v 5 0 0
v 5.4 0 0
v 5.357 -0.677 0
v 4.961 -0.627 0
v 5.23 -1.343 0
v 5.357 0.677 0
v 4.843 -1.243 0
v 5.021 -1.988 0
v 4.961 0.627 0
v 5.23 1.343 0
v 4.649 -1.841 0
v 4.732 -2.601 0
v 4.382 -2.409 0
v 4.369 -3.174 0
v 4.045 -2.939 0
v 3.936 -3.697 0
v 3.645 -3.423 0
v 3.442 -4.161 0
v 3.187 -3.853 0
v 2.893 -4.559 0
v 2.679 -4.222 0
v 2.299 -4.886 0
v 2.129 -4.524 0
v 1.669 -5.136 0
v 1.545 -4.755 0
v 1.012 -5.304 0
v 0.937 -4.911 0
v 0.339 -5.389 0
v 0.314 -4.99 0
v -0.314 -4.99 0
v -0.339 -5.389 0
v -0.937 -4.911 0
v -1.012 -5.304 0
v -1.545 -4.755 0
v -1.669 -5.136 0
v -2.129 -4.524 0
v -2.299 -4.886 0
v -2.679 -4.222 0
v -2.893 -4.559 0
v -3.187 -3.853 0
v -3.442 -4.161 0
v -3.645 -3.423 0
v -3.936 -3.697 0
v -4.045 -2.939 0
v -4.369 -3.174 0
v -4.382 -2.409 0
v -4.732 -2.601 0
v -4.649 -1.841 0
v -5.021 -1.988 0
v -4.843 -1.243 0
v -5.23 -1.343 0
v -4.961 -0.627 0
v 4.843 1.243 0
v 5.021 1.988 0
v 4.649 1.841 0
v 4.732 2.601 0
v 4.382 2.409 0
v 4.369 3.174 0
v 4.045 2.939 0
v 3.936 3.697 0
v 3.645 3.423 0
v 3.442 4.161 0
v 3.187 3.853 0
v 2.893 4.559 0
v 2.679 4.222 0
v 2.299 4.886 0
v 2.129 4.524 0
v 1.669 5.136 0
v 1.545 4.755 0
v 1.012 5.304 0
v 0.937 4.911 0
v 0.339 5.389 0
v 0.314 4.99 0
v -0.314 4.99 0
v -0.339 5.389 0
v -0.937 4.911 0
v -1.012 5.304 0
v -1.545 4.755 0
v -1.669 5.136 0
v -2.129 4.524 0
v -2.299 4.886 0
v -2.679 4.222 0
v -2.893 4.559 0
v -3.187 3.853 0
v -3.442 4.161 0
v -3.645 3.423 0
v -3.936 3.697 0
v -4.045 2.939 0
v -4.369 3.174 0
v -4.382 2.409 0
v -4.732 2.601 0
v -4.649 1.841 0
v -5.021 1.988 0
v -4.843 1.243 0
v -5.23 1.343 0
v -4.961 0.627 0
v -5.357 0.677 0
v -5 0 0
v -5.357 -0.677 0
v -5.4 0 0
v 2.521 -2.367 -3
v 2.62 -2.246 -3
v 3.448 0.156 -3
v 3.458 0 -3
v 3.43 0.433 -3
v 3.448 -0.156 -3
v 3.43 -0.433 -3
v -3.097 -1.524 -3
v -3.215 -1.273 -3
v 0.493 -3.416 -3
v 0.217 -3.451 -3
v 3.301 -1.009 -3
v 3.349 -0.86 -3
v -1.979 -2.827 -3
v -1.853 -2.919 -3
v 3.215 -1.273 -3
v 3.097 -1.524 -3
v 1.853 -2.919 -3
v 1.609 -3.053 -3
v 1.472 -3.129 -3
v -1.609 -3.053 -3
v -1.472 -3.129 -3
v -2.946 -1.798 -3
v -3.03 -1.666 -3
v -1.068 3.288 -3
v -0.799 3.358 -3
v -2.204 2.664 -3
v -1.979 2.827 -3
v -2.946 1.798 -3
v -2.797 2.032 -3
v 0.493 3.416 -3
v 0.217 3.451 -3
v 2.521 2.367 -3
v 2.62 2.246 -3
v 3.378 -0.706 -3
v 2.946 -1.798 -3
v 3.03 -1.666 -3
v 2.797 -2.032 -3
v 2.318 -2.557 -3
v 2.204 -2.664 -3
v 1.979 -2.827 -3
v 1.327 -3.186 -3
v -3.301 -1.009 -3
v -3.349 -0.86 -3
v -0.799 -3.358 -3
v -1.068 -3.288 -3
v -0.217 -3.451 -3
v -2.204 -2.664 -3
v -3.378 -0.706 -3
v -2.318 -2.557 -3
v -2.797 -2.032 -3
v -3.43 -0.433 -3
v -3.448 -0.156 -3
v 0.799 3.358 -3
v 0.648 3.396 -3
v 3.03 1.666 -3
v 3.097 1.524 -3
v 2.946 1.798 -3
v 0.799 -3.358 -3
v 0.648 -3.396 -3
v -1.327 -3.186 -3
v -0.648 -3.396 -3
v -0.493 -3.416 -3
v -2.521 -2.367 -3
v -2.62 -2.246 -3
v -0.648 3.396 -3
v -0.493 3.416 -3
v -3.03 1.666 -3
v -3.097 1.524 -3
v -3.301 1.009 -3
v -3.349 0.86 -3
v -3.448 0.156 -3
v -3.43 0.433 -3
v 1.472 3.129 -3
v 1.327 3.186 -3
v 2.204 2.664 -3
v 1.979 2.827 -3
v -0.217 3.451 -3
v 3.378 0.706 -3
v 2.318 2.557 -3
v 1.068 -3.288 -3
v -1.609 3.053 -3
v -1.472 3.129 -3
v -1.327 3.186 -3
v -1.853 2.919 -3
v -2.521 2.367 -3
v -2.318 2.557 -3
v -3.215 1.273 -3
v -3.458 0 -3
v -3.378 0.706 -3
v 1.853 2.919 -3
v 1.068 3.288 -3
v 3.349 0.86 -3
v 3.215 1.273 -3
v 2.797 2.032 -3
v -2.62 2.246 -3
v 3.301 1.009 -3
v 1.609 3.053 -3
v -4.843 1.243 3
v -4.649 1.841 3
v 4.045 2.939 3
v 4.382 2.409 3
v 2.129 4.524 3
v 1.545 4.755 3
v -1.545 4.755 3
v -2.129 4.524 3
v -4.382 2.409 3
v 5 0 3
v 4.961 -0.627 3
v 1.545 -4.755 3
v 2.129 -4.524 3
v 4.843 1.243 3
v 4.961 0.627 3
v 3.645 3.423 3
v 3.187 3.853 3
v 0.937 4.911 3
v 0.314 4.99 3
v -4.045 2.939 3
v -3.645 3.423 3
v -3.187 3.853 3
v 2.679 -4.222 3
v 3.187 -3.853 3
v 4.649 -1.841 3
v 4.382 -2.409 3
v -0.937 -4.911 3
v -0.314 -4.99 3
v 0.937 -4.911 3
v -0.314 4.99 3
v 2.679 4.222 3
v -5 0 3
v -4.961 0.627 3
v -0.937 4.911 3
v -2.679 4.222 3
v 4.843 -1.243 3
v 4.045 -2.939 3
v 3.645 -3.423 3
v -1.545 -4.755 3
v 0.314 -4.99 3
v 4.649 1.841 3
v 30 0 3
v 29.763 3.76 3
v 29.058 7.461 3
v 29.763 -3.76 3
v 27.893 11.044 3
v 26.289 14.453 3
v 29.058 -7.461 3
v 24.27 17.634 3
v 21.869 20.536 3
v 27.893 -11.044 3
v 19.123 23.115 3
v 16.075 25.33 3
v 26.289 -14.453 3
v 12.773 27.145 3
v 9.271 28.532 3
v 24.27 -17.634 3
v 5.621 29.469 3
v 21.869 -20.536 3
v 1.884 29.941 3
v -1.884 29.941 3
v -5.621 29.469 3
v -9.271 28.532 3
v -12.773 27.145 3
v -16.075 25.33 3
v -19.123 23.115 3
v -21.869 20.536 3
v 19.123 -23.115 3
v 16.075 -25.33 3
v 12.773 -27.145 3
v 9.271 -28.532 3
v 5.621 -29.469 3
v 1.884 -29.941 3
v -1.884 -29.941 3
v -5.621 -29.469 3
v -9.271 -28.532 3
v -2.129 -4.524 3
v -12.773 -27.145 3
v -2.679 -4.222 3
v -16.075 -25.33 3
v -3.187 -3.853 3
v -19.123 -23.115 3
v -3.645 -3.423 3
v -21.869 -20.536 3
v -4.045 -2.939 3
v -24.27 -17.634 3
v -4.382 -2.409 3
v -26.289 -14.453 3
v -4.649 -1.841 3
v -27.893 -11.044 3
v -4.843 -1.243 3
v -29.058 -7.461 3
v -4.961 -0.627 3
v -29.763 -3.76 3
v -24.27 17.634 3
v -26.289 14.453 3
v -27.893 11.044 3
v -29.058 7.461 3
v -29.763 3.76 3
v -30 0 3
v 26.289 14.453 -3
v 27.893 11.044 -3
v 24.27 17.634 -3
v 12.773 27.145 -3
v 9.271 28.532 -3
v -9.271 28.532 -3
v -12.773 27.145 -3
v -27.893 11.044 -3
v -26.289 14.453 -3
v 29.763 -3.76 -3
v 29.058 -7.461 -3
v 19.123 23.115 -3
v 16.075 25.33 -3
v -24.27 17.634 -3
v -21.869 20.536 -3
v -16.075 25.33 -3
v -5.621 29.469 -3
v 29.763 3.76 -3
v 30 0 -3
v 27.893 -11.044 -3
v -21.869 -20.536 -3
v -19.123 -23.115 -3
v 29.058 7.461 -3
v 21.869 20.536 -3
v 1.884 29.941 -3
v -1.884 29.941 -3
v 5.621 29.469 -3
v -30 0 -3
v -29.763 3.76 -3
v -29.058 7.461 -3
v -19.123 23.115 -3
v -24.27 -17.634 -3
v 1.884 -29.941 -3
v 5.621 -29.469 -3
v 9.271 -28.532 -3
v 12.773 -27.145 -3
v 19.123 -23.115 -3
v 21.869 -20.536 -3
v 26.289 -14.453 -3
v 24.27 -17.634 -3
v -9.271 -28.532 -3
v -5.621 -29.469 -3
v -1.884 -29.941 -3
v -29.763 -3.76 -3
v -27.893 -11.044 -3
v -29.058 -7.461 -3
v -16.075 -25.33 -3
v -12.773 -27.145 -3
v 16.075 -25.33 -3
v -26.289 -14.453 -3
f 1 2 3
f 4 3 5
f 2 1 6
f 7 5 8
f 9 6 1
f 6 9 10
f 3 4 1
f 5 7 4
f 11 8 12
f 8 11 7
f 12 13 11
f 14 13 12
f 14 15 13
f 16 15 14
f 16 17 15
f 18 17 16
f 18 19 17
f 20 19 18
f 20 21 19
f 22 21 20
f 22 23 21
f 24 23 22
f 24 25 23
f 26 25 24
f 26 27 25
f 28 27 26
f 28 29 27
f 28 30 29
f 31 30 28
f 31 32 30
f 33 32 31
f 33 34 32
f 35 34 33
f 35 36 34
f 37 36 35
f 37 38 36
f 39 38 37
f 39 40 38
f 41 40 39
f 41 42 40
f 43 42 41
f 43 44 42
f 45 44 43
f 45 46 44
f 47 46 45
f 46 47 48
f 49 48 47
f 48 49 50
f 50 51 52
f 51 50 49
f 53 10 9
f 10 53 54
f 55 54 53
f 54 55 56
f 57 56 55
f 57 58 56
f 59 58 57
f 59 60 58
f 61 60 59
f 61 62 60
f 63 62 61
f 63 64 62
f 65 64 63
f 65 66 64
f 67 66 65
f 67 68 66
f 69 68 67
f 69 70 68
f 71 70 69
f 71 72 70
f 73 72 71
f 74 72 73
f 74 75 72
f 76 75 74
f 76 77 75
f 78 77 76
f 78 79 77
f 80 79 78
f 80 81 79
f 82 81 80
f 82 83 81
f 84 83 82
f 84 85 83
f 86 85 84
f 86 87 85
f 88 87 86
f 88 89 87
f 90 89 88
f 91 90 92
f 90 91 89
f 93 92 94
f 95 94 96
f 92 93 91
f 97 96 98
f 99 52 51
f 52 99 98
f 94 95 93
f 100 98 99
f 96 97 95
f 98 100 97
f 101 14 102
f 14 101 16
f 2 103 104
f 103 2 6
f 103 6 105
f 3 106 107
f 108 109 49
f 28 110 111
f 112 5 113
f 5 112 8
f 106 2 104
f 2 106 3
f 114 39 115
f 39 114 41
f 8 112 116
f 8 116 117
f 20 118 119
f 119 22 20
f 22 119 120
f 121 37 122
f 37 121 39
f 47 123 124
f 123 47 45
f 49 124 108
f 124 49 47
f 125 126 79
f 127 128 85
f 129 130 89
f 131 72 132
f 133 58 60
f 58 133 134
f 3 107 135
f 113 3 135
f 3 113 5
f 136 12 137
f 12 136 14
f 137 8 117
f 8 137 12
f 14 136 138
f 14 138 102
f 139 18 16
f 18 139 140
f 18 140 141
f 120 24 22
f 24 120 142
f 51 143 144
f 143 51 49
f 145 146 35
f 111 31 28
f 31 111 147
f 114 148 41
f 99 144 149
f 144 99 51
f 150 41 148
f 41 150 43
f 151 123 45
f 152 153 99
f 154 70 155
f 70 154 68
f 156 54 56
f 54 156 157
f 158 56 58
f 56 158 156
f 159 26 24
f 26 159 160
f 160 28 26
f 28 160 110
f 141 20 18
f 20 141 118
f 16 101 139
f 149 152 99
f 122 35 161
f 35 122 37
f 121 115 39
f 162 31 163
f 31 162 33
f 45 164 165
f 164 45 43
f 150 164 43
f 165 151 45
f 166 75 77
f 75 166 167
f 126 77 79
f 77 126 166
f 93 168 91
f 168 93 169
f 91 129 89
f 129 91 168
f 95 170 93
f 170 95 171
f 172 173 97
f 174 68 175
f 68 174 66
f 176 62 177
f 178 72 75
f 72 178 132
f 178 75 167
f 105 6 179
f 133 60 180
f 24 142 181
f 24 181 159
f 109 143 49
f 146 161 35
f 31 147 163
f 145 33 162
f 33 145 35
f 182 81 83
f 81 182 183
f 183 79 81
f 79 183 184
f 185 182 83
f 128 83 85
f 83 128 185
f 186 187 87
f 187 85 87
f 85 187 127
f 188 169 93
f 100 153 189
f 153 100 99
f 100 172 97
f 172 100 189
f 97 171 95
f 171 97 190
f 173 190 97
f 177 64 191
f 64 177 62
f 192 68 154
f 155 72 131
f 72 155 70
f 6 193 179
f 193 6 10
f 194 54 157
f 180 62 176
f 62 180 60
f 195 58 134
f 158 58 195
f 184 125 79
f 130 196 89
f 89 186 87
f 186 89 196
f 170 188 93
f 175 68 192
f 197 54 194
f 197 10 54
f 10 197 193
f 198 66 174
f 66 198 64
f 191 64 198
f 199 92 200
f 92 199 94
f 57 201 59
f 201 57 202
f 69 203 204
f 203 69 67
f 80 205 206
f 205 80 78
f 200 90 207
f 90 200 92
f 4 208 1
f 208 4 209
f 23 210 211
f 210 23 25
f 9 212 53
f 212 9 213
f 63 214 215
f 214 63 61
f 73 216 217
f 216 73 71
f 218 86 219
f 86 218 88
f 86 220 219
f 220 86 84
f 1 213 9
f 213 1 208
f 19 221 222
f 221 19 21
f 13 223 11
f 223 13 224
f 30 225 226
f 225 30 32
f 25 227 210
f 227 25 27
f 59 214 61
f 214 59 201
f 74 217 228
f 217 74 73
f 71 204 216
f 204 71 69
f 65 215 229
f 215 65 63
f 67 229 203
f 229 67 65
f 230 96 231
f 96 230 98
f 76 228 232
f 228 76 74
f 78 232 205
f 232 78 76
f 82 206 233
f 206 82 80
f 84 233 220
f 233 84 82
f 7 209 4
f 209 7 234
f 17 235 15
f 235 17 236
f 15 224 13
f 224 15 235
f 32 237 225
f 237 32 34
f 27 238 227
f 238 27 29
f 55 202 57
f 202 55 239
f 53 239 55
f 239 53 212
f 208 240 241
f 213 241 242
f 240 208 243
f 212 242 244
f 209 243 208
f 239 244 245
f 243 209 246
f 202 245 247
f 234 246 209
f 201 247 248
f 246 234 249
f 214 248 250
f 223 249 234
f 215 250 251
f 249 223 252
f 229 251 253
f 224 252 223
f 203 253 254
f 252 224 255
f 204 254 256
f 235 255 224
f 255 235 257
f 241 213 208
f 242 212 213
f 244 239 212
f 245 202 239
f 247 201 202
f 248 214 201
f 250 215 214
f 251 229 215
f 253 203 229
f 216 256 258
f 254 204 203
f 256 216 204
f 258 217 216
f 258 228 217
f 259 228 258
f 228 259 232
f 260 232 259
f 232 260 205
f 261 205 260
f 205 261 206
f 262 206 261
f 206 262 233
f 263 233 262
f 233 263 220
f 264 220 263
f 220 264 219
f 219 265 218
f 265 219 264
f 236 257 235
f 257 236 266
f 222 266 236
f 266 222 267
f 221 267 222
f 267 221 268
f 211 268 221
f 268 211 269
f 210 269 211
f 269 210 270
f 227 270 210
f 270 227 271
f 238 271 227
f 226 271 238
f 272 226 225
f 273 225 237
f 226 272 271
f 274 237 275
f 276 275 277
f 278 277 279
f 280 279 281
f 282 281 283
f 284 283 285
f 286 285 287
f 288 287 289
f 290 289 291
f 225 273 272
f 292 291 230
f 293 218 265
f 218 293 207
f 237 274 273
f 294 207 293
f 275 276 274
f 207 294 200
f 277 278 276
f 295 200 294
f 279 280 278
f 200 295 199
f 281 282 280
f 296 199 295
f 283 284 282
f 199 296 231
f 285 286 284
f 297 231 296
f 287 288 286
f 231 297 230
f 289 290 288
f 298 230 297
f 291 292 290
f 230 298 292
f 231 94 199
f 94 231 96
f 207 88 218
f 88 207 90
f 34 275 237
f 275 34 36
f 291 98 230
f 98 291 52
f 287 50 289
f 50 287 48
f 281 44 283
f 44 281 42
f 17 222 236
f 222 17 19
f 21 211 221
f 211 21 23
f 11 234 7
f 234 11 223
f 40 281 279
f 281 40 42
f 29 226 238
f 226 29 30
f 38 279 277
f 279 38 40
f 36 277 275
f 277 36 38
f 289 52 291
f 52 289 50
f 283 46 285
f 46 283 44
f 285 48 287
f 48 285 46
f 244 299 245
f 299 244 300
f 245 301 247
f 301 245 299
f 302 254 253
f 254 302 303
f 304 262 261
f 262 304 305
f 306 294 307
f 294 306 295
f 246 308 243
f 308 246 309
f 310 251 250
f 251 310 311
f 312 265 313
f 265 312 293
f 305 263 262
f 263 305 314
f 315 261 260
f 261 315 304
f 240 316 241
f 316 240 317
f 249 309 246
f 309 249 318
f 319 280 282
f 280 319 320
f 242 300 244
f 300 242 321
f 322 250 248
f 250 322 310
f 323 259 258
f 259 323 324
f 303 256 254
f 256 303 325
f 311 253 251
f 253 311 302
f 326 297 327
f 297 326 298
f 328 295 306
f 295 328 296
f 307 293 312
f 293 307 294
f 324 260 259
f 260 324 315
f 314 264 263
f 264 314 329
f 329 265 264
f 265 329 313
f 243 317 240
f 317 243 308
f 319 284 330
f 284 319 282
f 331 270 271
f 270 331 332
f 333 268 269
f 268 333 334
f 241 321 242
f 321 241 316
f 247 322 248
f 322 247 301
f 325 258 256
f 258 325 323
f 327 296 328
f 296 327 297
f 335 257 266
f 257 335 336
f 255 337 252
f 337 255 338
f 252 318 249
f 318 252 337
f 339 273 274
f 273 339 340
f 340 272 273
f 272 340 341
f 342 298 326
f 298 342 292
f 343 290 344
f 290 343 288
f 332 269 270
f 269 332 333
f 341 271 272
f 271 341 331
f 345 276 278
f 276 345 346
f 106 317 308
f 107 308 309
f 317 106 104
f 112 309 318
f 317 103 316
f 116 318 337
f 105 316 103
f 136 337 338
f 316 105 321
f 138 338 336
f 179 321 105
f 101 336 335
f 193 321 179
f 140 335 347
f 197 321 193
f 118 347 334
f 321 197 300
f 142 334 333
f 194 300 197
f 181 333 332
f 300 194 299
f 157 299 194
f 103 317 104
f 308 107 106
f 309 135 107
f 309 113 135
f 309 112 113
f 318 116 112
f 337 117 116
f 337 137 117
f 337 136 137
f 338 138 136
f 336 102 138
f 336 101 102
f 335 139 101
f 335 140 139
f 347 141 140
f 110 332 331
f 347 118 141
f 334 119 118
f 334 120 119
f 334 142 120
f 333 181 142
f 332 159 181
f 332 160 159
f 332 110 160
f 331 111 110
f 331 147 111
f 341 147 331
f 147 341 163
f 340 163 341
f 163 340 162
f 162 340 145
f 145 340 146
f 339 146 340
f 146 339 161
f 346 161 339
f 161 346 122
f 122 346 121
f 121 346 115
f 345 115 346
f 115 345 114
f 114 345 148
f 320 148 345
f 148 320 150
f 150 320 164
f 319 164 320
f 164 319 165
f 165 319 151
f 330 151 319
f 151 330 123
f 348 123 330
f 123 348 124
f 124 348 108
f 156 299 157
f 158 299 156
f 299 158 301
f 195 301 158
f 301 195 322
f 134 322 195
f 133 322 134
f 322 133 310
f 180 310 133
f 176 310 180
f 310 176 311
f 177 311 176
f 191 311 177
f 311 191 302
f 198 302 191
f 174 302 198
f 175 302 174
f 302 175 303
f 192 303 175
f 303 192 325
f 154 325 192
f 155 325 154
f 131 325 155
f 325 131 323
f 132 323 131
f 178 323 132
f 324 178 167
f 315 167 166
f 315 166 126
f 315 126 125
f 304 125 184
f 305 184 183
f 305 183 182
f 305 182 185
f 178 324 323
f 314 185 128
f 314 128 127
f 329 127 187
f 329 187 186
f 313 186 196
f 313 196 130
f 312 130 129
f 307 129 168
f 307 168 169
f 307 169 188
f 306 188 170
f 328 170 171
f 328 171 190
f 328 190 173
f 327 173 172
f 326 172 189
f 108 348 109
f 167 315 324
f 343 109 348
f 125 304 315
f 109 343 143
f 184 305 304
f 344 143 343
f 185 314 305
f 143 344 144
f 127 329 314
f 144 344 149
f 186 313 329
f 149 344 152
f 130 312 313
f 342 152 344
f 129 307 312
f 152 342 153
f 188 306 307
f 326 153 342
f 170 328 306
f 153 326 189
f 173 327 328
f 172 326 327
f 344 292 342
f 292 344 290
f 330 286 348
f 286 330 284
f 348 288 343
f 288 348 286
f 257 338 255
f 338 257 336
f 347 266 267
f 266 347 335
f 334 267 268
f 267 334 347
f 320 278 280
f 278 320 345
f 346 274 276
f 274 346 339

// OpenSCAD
$fn = 50;

difference() {
	union() {
		translate(v = [0, 0, -3.0]) {
			cylinder(h = 6, r = 30.0);
		}
	}
	union() {
		translate(v = [0, 0, 0]) {
			rotate(a = [0, 0, 0]) {
				difference() {
					union() {
						translate(v = [0, 0, -6.0]) {
							cylinder(h = 6, r = 2.6);
						}
						translate(v = [0, 0, -3.9]) {
							cylinder(h = 3.9, r1 = 2.875, r2 = 5.4);
						}
						translate(v = [0, 0, -6.0]) {
							cylinder(h = 6, r = 2.875);
						}
						translate(v = [0, 0, -6.0]) {
							cylinder(h = 6, r = 2.6);
						}
					}
					union();
				}
			}
		}
		#cylinder(h = 3, r = 5.0);
	}
}
